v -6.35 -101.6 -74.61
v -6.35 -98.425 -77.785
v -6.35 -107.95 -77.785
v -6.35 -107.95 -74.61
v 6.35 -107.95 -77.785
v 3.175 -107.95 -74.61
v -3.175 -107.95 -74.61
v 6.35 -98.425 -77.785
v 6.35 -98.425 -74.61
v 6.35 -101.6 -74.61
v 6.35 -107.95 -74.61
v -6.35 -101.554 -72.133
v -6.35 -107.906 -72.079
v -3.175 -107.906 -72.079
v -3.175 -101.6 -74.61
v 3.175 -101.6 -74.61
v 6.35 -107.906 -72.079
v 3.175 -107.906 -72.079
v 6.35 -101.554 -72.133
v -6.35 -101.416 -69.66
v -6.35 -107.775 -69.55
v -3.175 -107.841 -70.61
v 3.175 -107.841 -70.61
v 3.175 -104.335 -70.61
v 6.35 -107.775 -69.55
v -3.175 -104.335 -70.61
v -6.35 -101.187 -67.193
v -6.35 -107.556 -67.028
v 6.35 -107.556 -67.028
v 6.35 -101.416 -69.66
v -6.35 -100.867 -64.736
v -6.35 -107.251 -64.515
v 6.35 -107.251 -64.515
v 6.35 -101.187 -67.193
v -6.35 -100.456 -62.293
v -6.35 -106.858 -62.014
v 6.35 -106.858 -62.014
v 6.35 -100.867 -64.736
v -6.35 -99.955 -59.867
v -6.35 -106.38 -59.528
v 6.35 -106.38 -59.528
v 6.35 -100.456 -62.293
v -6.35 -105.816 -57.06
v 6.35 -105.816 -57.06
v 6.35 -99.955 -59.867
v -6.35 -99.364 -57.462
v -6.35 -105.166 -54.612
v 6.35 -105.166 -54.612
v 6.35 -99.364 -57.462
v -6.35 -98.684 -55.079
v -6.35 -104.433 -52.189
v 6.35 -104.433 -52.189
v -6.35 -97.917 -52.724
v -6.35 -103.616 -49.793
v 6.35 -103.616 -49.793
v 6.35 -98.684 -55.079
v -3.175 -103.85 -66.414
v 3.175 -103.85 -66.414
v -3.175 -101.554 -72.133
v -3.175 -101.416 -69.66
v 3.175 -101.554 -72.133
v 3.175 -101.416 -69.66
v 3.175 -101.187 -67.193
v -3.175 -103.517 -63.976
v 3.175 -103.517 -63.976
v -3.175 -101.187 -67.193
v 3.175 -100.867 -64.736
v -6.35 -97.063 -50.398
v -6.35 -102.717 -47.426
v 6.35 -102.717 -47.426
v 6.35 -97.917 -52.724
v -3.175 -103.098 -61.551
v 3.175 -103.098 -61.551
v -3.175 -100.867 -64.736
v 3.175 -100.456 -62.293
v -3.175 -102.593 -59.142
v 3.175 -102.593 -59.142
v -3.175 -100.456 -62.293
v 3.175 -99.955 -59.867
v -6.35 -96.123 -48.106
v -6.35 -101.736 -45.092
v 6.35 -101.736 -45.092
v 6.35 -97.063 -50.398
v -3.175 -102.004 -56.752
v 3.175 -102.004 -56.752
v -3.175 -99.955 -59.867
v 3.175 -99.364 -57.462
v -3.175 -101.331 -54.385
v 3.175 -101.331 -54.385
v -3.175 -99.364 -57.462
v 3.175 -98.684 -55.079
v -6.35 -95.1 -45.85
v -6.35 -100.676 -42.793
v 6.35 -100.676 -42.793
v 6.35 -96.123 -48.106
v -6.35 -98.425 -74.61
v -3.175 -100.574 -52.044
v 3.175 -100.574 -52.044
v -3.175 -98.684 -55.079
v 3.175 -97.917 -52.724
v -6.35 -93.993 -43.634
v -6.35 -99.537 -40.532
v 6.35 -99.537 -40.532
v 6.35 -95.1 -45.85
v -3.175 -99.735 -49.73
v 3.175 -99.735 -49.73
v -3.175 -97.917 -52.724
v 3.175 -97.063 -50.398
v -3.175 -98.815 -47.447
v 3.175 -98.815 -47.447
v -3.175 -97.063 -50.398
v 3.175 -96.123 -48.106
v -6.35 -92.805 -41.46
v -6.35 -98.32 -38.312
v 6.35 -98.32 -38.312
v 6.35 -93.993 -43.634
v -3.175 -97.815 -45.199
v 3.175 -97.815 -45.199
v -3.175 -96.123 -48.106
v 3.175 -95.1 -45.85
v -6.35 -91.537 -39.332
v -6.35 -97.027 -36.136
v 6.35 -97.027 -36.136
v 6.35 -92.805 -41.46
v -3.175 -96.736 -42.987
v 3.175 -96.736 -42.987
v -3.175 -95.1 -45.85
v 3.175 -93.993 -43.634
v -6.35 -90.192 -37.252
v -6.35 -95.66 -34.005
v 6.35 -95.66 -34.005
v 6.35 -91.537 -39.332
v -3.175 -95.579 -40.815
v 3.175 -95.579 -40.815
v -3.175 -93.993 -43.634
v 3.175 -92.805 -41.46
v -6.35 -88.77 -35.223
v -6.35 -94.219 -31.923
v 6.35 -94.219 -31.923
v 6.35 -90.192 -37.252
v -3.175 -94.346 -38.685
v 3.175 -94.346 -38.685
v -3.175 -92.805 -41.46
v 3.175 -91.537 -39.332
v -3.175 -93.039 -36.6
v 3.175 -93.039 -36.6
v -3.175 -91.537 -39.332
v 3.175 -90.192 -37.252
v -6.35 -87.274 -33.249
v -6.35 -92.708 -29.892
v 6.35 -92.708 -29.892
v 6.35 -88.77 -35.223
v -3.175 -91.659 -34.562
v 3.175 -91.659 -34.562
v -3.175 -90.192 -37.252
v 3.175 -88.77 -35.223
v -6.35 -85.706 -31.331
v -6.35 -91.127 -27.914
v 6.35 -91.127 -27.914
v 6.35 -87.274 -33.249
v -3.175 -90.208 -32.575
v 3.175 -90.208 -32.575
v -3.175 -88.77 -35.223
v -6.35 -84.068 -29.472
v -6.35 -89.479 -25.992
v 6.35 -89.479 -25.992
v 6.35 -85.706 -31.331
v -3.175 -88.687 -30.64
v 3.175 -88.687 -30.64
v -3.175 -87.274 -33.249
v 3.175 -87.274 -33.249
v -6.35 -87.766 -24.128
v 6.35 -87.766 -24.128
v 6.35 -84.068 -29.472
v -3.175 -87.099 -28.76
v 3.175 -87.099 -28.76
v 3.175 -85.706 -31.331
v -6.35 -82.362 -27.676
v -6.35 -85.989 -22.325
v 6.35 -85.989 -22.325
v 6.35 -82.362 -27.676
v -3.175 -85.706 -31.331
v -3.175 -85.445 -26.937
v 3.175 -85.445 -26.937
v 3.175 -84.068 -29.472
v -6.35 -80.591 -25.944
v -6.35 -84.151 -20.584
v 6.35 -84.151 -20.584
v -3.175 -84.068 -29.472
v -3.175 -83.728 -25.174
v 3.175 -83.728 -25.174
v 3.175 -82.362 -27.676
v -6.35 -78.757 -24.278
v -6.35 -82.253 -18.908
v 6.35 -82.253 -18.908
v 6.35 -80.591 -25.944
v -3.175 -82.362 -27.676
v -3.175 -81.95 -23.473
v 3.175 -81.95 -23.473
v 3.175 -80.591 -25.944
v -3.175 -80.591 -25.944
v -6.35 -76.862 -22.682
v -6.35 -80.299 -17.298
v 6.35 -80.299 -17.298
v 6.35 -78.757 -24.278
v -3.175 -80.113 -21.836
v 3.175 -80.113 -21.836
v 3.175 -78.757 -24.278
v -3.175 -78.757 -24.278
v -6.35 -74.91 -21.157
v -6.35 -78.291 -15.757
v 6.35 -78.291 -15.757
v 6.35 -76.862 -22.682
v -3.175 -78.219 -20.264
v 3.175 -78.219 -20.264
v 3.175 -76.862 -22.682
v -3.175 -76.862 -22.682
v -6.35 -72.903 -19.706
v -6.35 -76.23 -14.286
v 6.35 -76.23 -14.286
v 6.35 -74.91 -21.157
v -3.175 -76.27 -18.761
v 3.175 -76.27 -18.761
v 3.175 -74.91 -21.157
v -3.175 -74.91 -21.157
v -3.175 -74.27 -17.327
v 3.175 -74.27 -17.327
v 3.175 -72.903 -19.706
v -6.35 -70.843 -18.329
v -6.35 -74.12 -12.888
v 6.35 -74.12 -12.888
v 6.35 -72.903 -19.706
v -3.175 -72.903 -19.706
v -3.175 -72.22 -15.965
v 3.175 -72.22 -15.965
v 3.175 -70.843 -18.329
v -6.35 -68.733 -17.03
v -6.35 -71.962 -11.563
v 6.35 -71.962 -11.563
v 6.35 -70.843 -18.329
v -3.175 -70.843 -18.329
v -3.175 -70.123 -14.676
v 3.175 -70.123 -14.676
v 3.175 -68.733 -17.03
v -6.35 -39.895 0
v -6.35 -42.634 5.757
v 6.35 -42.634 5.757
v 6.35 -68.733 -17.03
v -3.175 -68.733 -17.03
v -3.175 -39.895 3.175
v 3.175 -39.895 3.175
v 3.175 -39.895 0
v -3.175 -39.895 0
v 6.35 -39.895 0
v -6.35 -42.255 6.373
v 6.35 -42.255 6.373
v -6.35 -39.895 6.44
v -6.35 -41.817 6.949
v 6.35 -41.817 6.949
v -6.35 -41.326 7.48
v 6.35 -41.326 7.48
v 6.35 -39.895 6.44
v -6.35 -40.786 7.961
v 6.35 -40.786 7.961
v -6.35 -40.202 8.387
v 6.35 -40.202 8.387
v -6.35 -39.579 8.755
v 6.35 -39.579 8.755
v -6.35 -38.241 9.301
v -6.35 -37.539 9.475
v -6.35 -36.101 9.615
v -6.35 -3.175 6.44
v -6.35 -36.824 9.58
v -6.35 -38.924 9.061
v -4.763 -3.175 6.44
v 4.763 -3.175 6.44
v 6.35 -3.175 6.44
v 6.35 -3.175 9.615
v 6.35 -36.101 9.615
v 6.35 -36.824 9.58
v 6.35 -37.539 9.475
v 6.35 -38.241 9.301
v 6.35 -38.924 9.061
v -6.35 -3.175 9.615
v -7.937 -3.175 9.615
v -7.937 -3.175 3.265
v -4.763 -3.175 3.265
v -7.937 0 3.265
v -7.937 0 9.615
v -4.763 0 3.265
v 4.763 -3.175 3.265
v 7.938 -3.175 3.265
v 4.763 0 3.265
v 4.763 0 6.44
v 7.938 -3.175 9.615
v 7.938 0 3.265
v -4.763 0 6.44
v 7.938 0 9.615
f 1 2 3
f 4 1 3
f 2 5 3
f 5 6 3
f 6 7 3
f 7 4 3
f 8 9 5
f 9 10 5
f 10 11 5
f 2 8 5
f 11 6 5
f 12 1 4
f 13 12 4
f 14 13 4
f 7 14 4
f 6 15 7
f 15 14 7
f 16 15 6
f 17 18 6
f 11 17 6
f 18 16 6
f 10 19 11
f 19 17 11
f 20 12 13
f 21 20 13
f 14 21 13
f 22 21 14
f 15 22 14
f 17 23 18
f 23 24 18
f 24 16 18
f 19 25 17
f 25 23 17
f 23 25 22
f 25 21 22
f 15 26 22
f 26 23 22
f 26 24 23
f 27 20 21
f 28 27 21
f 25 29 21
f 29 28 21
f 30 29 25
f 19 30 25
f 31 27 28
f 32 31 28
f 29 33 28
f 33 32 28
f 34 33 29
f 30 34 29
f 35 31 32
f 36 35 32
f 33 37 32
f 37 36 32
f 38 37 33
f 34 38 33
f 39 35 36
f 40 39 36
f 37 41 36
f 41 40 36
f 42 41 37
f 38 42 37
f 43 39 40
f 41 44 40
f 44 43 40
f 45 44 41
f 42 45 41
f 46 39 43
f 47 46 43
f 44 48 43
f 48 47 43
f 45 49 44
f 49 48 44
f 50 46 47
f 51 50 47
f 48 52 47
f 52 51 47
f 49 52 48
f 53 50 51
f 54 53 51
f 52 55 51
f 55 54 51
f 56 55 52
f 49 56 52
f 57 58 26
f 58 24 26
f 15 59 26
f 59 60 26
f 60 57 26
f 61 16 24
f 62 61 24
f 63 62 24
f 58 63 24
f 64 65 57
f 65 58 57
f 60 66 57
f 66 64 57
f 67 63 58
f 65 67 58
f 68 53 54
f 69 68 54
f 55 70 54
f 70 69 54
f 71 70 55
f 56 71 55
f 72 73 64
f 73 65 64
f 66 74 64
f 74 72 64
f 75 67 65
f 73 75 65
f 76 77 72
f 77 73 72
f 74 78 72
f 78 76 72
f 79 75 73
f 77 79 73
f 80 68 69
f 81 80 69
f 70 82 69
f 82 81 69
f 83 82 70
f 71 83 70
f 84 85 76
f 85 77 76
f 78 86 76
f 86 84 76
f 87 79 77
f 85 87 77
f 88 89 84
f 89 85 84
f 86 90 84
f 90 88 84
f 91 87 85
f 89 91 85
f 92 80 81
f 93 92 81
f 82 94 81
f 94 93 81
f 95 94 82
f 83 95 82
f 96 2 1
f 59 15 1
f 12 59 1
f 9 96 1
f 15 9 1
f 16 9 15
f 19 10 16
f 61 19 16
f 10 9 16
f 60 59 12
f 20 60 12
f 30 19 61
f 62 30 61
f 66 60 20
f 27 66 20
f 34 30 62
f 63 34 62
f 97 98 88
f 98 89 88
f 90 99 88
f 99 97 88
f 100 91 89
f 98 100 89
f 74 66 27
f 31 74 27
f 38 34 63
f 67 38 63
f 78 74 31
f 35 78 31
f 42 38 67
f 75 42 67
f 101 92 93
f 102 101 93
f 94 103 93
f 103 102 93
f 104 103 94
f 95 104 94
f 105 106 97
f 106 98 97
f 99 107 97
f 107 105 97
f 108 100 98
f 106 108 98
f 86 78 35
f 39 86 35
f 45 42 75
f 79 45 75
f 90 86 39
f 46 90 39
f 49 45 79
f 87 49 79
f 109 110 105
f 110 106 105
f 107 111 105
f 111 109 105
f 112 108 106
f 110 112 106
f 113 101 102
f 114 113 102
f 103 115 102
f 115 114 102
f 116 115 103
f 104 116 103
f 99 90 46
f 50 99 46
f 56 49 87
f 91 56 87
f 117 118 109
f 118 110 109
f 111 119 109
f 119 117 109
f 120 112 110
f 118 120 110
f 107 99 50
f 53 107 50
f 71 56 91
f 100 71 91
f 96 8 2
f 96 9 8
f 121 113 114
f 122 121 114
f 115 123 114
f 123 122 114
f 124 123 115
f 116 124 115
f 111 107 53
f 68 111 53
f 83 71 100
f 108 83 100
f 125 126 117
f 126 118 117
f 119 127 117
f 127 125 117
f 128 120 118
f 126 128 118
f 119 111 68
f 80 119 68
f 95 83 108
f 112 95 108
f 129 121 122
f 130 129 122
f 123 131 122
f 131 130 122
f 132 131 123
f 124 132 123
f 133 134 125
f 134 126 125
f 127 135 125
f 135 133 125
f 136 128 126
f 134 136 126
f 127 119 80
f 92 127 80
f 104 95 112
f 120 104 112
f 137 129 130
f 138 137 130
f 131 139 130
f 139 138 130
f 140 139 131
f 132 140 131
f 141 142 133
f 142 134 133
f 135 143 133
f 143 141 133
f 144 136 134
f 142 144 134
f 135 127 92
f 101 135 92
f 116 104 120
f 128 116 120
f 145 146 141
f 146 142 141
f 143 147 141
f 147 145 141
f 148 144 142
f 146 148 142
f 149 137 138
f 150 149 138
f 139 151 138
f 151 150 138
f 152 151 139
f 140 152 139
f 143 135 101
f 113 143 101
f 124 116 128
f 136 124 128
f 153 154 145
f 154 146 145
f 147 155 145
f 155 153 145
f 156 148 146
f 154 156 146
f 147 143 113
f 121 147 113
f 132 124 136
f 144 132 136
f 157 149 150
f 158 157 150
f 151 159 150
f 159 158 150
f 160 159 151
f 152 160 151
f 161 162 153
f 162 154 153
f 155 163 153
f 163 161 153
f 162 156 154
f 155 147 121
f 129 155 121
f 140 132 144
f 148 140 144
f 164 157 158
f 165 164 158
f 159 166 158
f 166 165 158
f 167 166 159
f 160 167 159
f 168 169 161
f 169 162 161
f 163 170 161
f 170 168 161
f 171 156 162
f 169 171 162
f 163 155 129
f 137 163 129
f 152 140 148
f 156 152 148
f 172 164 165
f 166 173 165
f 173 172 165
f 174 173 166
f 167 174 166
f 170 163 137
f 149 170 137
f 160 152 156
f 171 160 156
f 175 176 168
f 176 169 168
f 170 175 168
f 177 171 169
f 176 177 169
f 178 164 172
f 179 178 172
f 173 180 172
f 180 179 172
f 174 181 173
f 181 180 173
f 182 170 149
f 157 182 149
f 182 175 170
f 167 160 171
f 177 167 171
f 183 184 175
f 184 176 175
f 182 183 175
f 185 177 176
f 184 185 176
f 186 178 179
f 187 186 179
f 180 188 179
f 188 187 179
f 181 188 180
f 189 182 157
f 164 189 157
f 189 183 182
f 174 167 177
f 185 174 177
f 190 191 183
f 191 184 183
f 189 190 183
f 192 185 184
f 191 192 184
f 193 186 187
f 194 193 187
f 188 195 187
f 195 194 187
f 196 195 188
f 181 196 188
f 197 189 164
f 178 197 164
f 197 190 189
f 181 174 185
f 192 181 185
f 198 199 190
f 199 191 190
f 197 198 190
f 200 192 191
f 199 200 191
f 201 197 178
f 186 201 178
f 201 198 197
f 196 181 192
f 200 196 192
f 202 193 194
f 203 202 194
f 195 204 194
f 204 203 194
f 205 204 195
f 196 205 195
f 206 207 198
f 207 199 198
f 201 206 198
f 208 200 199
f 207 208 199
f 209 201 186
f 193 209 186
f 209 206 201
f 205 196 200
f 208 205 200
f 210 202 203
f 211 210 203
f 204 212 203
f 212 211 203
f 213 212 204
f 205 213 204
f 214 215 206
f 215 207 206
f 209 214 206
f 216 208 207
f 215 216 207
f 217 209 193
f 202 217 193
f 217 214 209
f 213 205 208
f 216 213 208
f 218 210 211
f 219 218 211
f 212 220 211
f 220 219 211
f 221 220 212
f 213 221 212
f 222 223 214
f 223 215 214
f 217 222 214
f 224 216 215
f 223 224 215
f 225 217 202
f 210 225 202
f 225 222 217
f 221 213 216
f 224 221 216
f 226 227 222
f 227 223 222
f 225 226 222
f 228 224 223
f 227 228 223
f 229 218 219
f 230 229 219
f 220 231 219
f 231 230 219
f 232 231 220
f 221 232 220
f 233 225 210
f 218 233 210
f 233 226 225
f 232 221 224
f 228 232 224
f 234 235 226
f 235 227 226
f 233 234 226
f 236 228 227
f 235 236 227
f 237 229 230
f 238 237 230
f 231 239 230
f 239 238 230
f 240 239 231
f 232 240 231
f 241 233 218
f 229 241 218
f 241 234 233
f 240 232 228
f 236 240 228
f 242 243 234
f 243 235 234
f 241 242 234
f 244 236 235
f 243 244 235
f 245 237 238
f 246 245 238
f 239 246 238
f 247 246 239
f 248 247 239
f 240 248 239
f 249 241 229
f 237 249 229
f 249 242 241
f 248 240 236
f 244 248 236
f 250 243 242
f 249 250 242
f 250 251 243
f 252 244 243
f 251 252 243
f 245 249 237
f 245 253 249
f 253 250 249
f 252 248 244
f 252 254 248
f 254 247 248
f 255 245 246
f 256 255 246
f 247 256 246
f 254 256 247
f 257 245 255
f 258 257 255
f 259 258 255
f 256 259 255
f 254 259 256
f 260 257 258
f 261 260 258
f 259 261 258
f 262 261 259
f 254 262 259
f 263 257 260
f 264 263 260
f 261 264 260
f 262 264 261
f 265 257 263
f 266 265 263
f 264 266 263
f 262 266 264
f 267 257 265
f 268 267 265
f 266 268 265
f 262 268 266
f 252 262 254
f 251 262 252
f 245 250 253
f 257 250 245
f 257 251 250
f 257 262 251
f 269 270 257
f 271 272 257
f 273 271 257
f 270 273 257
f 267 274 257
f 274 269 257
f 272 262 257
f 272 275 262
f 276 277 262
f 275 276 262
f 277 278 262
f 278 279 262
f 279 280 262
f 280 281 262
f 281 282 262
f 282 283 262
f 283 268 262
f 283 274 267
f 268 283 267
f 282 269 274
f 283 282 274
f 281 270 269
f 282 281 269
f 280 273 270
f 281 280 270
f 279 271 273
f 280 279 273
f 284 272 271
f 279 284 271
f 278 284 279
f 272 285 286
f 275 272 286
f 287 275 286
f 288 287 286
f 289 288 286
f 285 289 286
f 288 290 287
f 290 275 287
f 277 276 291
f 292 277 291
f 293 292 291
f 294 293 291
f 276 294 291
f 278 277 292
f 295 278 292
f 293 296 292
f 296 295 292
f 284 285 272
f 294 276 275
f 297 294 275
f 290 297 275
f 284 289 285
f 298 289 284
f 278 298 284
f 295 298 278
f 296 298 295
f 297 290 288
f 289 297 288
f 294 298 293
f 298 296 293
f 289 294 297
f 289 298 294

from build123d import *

# Parameters (mm, degrees)
SKETCH5_W           = 12.880016042
SKETCH5_H           = 15.834691301
CUT_EXTRUDE2_DEPTH  = 7.62
CUT_EXTRUDE6_REACH  = 62
SKETCH11_W          = 3.175
SKETCH11_H          = 3.175
BOSS_EXTRUDE1_DEPTH = 6.35
CUT_EXTRUDE4_DEPTH  = 3.175
CUT_EXTRUDE7_DEPTH  = 40.64
BOSS_EXTRUDE3_DEPTH = 12.7
SKETCH19_W          = 21.319602533
SKETCH19_H          = 36.10119369
CUT_EXTRUDE10_DEPTH = 13.7
SKETCH15_W          = 6.35
SKETCH15_H          = 3.175
BOSS_EXTRUDE2_DEPTH = 1.5875
SKETCH20_W          = 6.35
SKETCH20_H          = 4
CUT_EXTRUDE11_DEPTH = 108.95


with BuildPart() as part:
    # Sketch2 → Revolve1 (revolve)
    with BuildSketch(Plane(origin=(0, 0, 0), x_dir=(0, 0, -1), z_dir=(1, 0, 0))):
        Polygon((0, -50.8), (-29.999999944, 0), (0, 0), align=None)
    revolve(axis=Axis((0, 0, 0), (0, -1, 0)))

    # Sketch4 → Cut-Revolve1 (revolve, cut)
    with BuildSketch(Plane(origin=(0, 0, 0), x_dir=(0, 0, -1), z_dir=(1, 0, 0))):
        Polygon((0, -45.72), (-24.919999944, 0), (0, 0), align=None)
    revolve(axis=Axis((0, 16.11457811, 0), (0, -1, 0)), mode=Mode.SUBTRACT)

    # Sketch5 → Cut-Extrude2 (cut, symmetric)
    with BuildSketch(Plane(origin=(0, 0, 0), x_dir=(0, 0, -1), z_dir=(1, 0, 0))):
        with Locations((0, -47.812265381)):
            Rectangle(SKETCH5_W, SKETCH5_H)
    extrude(amount=CUT_EXTRUDE2_DEPTH, both=True, mode=Mode.SUBTRACT)

    # Sketch11 → Cut-Extrude6 (cut, up to next)
    with BuildSketch(Plane.XY.offset(29.999999944), mode=Mode.PRIVATE) as cut_extrude6_sk1:
        with Locations((4.7625, -1.5875)):
            Rectangle(SKETCH11_W, SKETCH11_H)
    cut_extrude6_tool1 = extrude(cut_extrude6_sk1.sketch, amount=-CUT_EXTRUDE6_REACH, mode=Mode.PRIVATE) & part.part
    add(cut_extrude6_tool1.solids().sort_by_distance((4.7625, -1.5875, 30))[0], mode=Mode.SUBTRACT)
    # Sketch11 → Cut-Extrude6 (cut, up to next)
    with BuildSketch(Plane.XY.offset(29.999999944), mode=Mode.PRIVATE) as cut_extrude6_sk2:
        with Locations((-4.7625, -1.5875)):
            Rectangle(SKETCH11_W, SKETCH11_H)
    cut_extrude6_tool2 = extrude(cut_extrude6_sk2.sketch, amount=-CUT_EXTRUDE6_REACH, mode=Mode.PRIVATE) & part.part
    add(cut_extrude6_tool2.solids().sort_by_distance((-4.7625, -1.5875, 30))[0], mode=Mode.SUBTRACT)

    # Sketch6 → Boss-Extrude1 (add, symmetric)
    with BuildSketch(Plane(origin=(0, 0, 0), x_dir=(0, 0, -1), z_dir=(1, 0, 0))):
        with BuildLine():
            Line((0, -39.89491973), (-7.374618631, -39.89491973))
            Line((-7.374618631, -39.89491973), (11.56279342, -71.962270863))
            ThreePointArc((11.56279342, -71.962270863), (29.890602823, -92.707185326), (54.61, -105.165575141))
            ThreePointArc((54.61, -105.165575141), (64.513552335, -107.250553005), (74.61, -107.95))
            Line((74.61, -107.95), (77.785, -107.95))
            Line((77.785, -107.95), (77.785, -98.425))
            Line((77.785, -98.425), (74.61, -98.425))
            Line((74.61, -98.425), (74.61, -101.6))
            ThreePointArc((74.61, -101.6), (41.460280796, -92.804941633), (17.03053379, -68.733290336))
            Line((17.03053379, -68.733290336), (0, -39.89491973))
        make_face()
        Polygon((-30.934610553, 0), (-7.374618631, -39.89491973), (0, -39.89491973), (-23.559991923, 0), align=None)
    extrude(amount=BOSS_EXTRUDE1_DEPTH, both=True)

    # Sketch7 → Cut-Extrude4 (cut)
    with BuildSketch(Plane(origin=(0, 0, 0), x_dir=(0, 0, -1), z_dir=(1, 0, 0))):
        with BuildLine():
            Line((-3.175, -39.89491973), (14.676503495, -70.123465704))
            ThreePointArc((14.676503495, -70.123465704), (36.599939349, -93.039017482), (66.414189392, -103.849662572))
            ThreePointArc((66.414189392, -103.849662572), (70.51080038, -104.32379518), (74.61, -104.775))
            Line((74.61, -104.775), (74.61, -101.6))
            ThreePointArc((74.61, -101.6), (59.345071166, -99.83437787), (44.886242604, -94.630749287))
            ThreePointArc((44.886242604, -94.630749287), (29.078331812, -83.704237641), (17.03053379, -68.733290336))
            Line((17.03053379, -68.733290336), (-23.559991923, 0))
            Line((-23.559991923, 0), (-26.734991923, 0))
            Line((-26.734991923, 0), (-3.175, -39.89491973))
        make_face()
    cut_extrude4 = extrude(amount=-CUT_EXTRUDE4_DEPTH, mode=Mode.SUBTRACT)

    # Mirror1: Cut-Extrude4 across plane
    add(cut_extrude4.mirror(Plane(origin=(0, 0, 0), x_dir=(0, 0, 1), z_dir=(1, 0, 0))), mode=Mode.SUBTRACT)

    # Sketch9 → Cut-Revolve2 (revolve, cut)
    with BuildSketch(Plane(origin=(0, 0, 0), x_dir=(0, 0, -1), z_dir=(1, 0, 0))):
        Polygon((0, 0), (-24.9199908, 0), (-0.536470716, -39.89491973), (0, -39.89491973), align=None)
    revolve(axis=Axis((0, 16.11457811, 0), (0, -1, 0)), mode=Mode.SUBTRACT)

    # Sketch12 → Cut-Extrude7 (cut, symmetric)
    with BuildSketch(Plane.ZY):
        Polygon((30, 0), (-61.025869449, 0), (-61.025869449, -39.89491973), (-6.440008021, -39.89491973), (6.44000802, -39.89491973), (27.945214206, -3.175), align=None)
    extrude(amount=CUT_EXTRUDE7_DEPTH, both=True, mode=Mode.SUBTRACT)

    # Sketch18 → Boss-Extrude3 (add)
    with BuildSketch(Plane.ZY.offset(6.35)):
        with BuildLine():
            Line((6.44000802, -39.89491973), (6.44000802, 0))
            Line((6.44000802, 0), (9.61500802, 0))
            Line((9.61500802, 0), (9.61500802, -34.473639686))
            Line((9.61500802, -34.473639686), (9.61500802, -36.10119369))
            ThreePointArc((9.61500802, -36.10119369), (8.57844205, -39.89491973), (5.756782033, -42.634456374))
            Line((5.756782033, -42.634456374), (6.44000802, -41.477527034))
            Line((6.44000802, -41.477527034), (6.44000802, -39.89491973))
        make_face()
    extrude(amount=-BOSS_EXTRUDE3_DEPTH)

    # Sketch19 → Cut-Extrude10 (cut, through all)
    with BuildSketch(Plane.ZY.offset(6.35)):
        with Locations((20.274809287, -18.050596845)):
            Rectangle(SKETCH19_W, SKETCH19_H)
    extrude(amount=-CUT_EXTRUDE10_DEPTH, mode=Mode.SUBTRACT)

    # Sketch15 → Boss-Extrude2 (add, symmetric)
    with BuildSketch(Plane.ZY.offset(6.35)):
        with Locations((6.44000802, -1.5875)):
            Rectangle(SKETCH15_W, SKETCH15_H)
    boss_extrude2 = extrude(amount=BOSS_EXTRUDE2_DEPTH, both=True)

    # Mirror2: Boss-Extrude2 across plane
    add(boss_extrude2.mirror(Plane(origin=(0, 0, 0), x_dir=(0, 0, 1), z_dir=(1, 0, 0))))

    # Sketch20 → Cut-Extrude11 (cut, through all)
    with BuildSketch(Plane(origin=(0, 0, 0), x_dir=(1, 0, 0), z_dir=(0, 1, 0))):
        with Locations((0, 72.61)):
            Rectangle(SKETCH20_W, SKETCH20_H)
    extrude(amount=-CUT_EXTRUDE11_DEPTH, mode=Mode.SUBTRACT)


solid = part.part
